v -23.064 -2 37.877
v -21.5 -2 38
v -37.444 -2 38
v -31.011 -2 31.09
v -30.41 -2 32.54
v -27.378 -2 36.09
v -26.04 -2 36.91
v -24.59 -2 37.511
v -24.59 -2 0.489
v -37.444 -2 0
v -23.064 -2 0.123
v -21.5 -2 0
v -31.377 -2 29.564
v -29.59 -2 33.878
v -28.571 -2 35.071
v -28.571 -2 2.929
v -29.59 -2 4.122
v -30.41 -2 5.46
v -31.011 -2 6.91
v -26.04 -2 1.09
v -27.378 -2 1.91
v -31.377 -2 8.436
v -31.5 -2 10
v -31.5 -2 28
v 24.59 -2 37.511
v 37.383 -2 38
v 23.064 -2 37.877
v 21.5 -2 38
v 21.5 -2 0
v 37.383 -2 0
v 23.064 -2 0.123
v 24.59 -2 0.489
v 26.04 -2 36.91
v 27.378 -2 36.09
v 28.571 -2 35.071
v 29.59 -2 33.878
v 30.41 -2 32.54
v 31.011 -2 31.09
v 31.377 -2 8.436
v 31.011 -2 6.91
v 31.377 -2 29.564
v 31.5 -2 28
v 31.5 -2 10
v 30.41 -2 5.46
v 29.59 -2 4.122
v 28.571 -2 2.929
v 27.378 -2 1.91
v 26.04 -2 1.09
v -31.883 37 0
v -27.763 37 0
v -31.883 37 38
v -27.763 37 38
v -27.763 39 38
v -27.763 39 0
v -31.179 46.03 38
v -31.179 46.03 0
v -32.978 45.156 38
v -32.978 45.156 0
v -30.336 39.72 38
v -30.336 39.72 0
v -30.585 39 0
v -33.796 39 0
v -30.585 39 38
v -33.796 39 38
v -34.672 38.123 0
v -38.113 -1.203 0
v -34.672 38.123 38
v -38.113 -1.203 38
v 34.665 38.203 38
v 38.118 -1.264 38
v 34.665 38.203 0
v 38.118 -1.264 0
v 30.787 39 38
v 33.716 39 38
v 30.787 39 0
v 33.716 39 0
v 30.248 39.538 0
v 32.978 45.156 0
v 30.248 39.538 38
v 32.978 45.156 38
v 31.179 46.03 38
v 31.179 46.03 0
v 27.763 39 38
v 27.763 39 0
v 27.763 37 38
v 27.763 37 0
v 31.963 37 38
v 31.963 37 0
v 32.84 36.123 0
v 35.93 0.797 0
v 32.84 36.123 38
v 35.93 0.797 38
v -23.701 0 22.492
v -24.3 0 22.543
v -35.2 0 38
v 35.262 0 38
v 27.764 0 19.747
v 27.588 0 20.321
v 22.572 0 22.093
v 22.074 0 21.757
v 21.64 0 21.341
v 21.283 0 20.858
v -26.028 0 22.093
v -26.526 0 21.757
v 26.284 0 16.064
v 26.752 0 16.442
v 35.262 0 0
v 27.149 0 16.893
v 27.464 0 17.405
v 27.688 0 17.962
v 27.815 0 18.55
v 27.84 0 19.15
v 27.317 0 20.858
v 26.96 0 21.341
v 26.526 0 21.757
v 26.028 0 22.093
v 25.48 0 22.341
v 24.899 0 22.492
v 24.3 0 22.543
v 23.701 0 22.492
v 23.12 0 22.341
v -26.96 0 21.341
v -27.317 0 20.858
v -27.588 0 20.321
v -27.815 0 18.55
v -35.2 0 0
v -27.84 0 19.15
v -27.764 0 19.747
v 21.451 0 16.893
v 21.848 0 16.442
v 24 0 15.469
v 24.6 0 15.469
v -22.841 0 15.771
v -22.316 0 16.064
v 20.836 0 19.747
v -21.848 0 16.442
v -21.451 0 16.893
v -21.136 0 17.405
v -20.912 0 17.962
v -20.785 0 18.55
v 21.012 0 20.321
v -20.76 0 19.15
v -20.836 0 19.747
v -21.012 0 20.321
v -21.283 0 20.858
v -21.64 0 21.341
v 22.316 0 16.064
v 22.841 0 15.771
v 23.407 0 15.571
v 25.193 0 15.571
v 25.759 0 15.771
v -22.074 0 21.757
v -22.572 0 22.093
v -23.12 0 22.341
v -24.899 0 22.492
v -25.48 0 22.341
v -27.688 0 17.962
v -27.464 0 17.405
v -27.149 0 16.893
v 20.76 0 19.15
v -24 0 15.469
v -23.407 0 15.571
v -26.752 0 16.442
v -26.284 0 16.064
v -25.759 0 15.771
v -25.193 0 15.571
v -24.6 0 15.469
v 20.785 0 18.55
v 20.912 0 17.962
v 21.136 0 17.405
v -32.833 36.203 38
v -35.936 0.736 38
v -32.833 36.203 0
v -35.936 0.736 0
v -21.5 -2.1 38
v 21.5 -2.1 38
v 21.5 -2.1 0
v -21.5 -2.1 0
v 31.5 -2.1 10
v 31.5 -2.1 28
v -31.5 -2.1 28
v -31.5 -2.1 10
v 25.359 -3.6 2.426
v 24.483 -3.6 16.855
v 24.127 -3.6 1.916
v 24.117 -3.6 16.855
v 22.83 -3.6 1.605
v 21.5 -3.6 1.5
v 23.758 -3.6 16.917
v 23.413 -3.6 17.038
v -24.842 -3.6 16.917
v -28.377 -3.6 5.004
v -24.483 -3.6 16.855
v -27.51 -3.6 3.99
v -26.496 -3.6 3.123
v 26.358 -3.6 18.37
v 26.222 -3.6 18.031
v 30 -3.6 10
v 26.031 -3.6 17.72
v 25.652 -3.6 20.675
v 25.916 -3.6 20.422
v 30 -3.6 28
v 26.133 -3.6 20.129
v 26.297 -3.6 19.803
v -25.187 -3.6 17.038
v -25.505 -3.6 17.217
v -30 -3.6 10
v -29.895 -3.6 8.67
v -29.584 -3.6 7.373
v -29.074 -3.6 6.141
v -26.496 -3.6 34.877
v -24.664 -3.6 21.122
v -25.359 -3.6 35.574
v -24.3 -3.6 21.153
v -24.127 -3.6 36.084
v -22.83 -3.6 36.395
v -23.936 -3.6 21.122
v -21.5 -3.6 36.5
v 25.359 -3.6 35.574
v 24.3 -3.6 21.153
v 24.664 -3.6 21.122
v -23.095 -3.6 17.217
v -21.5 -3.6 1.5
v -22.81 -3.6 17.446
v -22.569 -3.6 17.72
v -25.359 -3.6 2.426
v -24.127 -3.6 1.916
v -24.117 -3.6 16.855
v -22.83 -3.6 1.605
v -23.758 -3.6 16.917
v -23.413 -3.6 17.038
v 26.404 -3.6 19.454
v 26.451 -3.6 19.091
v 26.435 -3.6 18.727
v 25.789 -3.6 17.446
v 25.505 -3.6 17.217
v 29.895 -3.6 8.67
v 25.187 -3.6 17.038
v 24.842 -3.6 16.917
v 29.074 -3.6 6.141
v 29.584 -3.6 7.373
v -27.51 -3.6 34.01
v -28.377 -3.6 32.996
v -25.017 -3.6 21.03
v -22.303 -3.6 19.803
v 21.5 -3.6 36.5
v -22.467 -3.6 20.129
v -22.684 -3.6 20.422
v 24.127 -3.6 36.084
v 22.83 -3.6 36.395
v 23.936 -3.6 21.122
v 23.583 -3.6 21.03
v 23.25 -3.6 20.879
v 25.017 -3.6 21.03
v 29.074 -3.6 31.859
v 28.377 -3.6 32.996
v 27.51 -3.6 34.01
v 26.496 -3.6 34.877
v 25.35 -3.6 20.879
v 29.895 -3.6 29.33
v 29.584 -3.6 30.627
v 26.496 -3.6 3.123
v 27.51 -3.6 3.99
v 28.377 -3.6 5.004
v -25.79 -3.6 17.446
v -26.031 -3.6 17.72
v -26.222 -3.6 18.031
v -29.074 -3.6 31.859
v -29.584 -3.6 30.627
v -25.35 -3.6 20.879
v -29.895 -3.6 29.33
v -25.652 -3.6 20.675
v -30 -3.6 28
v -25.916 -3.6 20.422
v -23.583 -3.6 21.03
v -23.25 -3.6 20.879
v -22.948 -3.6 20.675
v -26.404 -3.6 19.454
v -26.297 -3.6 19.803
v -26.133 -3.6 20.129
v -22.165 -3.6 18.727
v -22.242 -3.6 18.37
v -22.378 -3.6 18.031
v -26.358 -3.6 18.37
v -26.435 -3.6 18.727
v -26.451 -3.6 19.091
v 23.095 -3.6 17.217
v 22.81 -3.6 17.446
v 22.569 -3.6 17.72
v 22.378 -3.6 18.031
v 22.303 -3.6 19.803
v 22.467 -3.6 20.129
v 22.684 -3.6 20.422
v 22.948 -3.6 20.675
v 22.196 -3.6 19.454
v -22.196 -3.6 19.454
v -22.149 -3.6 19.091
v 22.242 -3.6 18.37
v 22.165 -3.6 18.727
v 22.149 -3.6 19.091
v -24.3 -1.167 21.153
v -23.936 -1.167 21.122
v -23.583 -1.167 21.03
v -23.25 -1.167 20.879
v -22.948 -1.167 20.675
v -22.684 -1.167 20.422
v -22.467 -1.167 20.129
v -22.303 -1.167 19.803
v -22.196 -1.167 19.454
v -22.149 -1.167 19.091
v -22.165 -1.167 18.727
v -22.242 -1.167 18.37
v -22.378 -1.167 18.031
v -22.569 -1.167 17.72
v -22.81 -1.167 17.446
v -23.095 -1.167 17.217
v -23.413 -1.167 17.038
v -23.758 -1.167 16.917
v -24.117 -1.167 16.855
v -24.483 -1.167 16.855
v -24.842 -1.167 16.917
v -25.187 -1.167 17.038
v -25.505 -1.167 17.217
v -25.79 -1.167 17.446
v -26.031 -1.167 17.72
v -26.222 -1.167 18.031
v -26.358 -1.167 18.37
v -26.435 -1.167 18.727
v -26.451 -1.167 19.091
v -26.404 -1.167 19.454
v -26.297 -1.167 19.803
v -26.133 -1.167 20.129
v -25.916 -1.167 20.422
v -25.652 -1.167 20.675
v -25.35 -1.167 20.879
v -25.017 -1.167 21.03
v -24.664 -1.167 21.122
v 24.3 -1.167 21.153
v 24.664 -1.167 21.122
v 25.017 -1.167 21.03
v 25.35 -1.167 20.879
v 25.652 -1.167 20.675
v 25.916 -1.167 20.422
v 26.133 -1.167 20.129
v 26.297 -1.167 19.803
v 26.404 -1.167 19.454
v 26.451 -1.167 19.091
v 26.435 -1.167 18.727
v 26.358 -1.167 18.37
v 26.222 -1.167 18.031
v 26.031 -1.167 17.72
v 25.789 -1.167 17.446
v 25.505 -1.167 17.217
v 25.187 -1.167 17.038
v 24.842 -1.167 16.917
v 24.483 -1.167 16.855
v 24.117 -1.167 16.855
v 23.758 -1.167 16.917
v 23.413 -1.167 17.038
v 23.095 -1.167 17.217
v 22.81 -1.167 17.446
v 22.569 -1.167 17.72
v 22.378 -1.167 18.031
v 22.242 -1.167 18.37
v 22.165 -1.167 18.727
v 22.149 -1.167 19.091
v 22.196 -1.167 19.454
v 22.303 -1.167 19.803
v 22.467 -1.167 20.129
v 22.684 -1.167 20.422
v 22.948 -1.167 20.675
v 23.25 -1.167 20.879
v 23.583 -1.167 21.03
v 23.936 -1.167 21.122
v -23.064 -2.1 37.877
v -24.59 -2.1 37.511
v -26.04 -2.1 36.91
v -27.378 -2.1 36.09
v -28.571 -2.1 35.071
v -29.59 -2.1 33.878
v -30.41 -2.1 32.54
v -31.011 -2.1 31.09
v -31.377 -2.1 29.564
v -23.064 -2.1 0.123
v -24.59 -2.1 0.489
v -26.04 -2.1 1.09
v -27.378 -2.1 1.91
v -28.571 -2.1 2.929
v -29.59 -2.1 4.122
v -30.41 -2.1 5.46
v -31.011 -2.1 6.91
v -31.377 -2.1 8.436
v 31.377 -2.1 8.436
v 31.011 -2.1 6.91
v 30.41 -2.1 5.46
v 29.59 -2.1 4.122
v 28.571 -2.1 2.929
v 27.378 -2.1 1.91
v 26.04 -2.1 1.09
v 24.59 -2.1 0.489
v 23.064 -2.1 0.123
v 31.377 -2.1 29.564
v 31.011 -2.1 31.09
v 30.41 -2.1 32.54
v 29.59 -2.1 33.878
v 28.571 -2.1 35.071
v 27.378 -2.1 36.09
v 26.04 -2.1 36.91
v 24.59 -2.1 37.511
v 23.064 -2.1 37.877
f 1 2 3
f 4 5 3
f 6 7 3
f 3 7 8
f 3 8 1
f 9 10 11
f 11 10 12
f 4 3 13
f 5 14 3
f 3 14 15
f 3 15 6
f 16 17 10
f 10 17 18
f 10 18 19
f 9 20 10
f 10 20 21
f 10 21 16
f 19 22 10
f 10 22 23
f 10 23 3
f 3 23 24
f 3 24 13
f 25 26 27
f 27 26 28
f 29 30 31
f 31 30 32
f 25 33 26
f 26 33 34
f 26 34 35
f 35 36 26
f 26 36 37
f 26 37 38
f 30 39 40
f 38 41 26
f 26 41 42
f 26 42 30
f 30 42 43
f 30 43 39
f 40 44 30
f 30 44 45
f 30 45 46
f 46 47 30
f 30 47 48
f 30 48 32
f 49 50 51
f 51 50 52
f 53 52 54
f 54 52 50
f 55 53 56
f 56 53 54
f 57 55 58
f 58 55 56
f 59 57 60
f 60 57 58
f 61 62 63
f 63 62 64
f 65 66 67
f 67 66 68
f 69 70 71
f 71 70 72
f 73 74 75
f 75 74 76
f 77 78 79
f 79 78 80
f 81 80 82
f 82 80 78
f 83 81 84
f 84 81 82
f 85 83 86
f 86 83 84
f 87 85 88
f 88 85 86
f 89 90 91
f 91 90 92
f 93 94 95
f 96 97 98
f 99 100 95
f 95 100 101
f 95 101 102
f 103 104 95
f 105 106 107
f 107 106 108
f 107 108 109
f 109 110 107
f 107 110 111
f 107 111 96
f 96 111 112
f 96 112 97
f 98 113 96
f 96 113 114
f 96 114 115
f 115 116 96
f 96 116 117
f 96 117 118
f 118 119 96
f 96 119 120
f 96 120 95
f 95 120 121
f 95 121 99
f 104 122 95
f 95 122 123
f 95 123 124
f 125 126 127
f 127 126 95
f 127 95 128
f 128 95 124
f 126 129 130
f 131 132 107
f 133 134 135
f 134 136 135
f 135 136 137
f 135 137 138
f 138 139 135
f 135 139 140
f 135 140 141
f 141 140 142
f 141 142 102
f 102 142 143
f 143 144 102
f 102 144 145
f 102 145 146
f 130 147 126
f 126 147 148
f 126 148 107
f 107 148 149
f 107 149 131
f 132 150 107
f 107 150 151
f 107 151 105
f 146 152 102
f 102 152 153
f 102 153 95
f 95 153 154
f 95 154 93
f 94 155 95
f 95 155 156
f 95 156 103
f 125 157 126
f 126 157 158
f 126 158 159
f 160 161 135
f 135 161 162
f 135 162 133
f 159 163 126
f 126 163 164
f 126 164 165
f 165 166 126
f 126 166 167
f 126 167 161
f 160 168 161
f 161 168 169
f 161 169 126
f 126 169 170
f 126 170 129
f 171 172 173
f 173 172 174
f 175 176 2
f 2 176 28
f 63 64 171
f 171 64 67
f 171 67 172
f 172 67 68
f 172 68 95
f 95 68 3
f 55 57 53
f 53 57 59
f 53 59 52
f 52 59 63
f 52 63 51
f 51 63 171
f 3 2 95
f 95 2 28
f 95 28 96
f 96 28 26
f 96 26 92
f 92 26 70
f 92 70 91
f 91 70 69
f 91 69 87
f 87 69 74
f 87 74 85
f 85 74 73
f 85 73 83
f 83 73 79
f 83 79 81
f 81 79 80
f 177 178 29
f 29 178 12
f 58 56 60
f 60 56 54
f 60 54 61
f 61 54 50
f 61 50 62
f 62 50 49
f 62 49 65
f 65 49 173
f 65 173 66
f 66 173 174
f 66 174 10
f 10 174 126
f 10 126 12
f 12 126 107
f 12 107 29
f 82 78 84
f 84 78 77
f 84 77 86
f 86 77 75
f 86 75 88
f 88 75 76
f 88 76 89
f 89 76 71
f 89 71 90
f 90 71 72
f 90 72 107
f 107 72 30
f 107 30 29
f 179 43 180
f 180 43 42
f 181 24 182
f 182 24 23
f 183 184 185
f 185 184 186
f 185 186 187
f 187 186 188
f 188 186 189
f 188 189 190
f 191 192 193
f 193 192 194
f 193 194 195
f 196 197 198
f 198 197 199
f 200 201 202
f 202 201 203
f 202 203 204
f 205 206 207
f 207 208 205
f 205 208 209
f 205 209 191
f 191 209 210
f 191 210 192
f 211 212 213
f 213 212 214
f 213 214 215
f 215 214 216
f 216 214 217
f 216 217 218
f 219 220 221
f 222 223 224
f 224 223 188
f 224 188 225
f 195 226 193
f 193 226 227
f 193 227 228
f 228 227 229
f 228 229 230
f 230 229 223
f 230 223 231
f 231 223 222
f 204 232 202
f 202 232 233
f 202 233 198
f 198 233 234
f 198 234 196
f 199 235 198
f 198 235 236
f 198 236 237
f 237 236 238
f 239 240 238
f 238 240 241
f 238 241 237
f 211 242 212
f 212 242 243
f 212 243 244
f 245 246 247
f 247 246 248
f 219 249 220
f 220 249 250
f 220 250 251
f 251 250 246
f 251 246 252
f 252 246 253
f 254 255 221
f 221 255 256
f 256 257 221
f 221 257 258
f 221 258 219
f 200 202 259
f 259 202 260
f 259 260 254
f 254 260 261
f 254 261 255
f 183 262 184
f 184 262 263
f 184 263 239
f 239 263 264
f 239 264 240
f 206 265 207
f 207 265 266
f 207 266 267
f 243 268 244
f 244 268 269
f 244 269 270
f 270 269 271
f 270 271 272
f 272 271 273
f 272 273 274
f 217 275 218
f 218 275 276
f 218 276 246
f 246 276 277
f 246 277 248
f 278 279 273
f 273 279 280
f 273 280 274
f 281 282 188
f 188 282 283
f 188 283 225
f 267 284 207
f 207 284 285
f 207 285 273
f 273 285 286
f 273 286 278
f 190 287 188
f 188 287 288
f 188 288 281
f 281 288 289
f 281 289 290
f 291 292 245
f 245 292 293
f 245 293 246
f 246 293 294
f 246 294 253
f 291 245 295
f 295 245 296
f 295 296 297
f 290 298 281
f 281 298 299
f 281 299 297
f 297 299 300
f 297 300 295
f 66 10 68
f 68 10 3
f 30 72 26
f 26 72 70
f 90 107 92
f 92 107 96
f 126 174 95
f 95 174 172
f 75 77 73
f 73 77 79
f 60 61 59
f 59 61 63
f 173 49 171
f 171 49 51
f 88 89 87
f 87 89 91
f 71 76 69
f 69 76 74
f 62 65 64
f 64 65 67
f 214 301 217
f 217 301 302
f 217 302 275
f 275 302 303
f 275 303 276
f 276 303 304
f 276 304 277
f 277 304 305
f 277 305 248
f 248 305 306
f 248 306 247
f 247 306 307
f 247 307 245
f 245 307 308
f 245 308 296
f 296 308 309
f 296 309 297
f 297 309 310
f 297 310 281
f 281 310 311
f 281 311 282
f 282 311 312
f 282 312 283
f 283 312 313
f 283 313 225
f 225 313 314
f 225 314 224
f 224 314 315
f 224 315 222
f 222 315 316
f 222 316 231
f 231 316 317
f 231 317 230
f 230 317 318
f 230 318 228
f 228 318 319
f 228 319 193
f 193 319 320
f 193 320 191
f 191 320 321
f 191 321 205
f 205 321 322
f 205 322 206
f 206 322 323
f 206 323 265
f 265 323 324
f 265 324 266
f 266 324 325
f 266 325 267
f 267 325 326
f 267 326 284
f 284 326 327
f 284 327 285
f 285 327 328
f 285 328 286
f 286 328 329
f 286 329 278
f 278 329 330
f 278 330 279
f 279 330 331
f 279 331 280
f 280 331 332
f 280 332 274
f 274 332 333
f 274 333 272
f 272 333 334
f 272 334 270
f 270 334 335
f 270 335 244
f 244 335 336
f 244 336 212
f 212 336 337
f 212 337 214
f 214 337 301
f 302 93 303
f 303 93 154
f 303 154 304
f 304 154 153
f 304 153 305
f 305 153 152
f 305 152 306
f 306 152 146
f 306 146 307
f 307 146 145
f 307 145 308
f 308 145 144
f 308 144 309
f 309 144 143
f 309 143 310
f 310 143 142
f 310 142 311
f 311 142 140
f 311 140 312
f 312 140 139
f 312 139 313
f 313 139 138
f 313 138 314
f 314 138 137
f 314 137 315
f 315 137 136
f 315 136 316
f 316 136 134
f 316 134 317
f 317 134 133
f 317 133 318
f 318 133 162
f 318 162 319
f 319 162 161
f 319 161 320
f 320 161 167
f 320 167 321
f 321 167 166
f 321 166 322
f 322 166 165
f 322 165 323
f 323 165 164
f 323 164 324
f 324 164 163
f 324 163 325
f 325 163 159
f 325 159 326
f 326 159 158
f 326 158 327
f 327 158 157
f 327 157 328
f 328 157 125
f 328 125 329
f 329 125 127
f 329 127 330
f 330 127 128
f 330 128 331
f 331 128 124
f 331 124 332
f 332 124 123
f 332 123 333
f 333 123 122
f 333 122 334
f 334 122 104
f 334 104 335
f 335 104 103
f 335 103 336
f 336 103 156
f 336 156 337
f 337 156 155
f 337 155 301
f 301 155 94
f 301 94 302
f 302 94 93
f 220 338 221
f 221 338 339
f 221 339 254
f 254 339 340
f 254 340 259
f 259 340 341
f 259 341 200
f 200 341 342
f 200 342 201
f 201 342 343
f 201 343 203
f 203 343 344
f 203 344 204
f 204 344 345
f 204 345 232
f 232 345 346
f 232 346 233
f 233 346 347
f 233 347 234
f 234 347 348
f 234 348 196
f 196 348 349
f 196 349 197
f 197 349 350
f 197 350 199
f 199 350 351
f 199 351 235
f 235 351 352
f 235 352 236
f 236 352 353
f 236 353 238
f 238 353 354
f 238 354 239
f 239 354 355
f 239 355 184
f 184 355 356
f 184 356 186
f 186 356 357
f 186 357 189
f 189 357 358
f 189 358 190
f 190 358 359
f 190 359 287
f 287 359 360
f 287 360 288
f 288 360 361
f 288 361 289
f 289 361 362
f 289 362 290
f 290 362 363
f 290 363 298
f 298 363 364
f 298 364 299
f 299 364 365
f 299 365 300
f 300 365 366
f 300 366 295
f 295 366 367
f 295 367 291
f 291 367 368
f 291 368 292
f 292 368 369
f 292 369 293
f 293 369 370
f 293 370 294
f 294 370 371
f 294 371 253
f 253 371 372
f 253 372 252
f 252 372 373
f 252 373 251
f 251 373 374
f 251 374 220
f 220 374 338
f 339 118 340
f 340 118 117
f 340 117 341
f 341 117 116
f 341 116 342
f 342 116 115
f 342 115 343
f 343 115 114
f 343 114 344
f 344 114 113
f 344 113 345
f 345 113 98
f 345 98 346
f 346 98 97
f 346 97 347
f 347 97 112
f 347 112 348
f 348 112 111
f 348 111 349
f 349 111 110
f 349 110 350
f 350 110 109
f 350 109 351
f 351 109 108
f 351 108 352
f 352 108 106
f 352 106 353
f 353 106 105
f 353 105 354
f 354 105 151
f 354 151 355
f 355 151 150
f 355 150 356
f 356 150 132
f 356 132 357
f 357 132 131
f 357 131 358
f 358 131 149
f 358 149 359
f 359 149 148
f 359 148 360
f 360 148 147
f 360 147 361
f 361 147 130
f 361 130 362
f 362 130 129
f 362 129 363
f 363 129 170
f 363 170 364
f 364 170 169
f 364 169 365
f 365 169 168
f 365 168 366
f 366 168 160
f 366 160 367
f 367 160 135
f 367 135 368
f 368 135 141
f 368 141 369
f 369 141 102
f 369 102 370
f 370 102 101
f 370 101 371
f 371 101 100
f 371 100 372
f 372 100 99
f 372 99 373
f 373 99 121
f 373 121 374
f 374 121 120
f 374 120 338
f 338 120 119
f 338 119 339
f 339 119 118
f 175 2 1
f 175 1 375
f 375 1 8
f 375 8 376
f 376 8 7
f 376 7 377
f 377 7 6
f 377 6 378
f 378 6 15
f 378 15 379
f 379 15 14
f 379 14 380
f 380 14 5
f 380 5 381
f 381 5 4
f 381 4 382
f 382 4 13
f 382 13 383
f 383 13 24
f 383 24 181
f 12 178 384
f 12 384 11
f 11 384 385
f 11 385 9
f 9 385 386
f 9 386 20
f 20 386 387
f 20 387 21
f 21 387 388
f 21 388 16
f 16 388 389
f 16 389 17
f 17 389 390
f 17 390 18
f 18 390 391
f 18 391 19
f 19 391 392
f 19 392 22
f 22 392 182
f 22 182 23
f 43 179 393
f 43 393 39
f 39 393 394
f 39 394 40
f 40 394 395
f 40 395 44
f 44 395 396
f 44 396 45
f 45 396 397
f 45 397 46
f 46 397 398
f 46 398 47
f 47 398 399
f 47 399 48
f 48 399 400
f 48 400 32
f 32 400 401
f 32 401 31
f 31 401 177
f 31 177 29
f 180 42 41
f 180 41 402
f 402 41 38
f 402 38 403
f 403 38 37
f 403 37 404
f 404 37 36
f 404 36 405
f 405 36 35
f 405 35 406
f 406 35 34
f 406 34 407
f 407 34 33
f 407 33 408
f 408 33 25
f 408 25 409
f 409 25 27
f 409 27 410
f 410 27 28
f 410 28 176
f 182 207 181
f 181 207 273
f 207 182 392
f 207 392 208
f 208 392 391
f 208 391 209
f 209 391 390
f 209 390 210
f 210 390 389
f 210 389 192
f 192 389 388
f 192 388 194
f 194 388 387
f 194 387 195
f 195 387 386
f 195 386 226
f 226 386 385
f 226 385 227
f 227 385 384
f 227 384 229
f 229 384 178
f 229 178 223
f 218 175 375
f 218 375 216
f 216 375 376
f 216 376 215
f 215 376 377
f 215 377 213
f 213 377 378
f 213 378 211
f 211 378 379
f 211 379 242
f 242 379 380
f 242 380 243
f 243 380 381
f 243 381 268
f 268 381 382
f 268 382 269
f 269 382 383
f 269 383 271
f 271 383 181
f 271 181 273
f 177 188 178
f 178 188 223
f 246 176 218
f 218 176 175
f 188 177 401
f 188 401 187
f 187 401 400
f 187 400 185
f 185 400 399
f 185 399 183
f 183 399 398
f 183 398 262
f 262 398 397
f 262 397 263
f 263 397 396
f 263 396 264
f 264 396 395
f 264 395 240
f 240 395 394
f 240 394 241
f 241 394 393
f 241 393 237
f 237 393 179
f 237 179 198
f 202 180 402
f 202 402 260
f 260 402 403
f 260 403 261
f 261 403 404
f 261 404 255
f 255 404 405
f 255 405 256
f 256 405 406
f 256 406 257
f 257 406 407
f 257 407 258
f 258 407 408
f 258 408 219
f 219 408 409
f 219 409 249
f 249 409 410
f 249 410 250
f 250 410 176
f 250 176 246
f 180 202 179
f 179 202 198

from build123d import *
from OCP.BRepFilletAPI import BRepFilletAPI_MakeChamfer

# Parameters (mm, degrees)
BOSS_EXTRUDE1_DEPTH                               = 38
SKETCH5_W                                         = 63
SKETCH5_H                                         = 38
BOSS_EXTRUDE2_DEPTH                               = 1.6
CHAMFER6_SIZE                                     = 0.8
CHAMFER6_SIZE2                                    = 0.738449877
CHAMFER7_SIZE                                     = 0.8
CHAMFER7_SIZE2                                    = 0.880050294
CHAMFER7_SIZE2_2                                  = 0.59857957
CSK_FOR_6_FLAT_HEAD_MACHINE_SCREW_100_D           = 4.3053
CSK_FOR_6_FLAT_HEAD_MACHINE_SCREW_100_DEPTH       = 3.6
CSK_FOR_6_FLAT_HEAD_MACHINE_SCREW_100_CSINK_D     = 7.0866
CSK_FOR_6_FLAT_HEAD_MACHINE_SCREW_100_CSINK_ANGLE = 100
FILLET1_R                                         = 10
CHAMFER10_SIZE                                    = 1.5


with BuildPart() as part:
    # Sketch1 → Boss-Extrude1 (new body)
    with BuildSketch(Plane.XY):
        Polygon((-34.595581798, 39), (-29.986555798, 39), (-32.97810591, 45.15618727), (-31.179250624, 46.030326652), (-27.76291945, 39), (-27.76291945, 37), (-32.76291945, 37), (-36, 0), (0, 0), (36, 0), (32.76291945, 37), (27.76291945, 37), (27.76291945, 39), (31.179250624, 46.030326652), (32.97810591, 45.15618727), (29.986555798, 39), (34.595581798, 39), (38.182617002, -2), (0, -2), (-38.182617002, -2), align=None)
    extrude(amount=BOSS_EXTRUDE1_DEPTH)

    # Sketch5 → Boss-Extrude2 (add)
    with BuildSketch(Plane.XZ.offset(2)):
        with Locations((0, 19)):
            Rectangle(SKETCH5_W, SKETCH5_H)
    extrude(amount=BOSS_EXTRUDE2_DEPTH)

    # Chamfer6: one chamfer whose edges measure the first distance from different faces: ONE call of the kernel's chamfer builder (chamfer() names one face for all edges)
    chamfer6_edges_1 = [part.edges().sort_by_distance(p)[0] for p in [
        (-36, 0, 19),
    ]]
    chamfer6_side_1 = [part.faces().sort_by_distance(p)[0] for p in [
        (0, 0, 19),
    ]]
    chamfer6_edges_2 = [part.edges().sort_by_distance(p)[0] for p in [
        (36, 0, 19),
    ]]
    chamfer6_side_2 = [part.faces().sort_by_distance(p)[0] for p in [
        (34.381459725, 18.5, 19),
    ]]
    chamfer6_edges_3 = [part.edges().sort_by_distance(p)[0] for p in [
        (38.182617002, -2, 19),
    ]]
    chamfer6_side_3 = [part.faces().sort_by_distance(p)[0] for p in [
        (34.841308501, -2, 19),
    ]]
    chamfer6_edges_4 = [part.edges().sort_by_distance(p)[0] for p in [
        (-38.182617002, -2, 19),
    ]]
    chamfer6_side_4 = [part.faces().sort_by_distance(p)[0] for p in [
        (-36.3890994, 18.5, 19),
    ]]
    chamfer6 = BRepFilletAPI_MakeChamfer(part.part.solid().wrapped)
    for e in chamfer6_edges_1:
        chamfer6.Add(CHAMFER6_SIZE, CHAMFER6_SIZE2, e.wrapped, chamfer6_side_1[0].wrapped)  # the first distance lies on this face
    for e in chamfer6_edges_2:
        chamfer6.Add(CHAMFER6_SIZE, CHAMFER6_SIZE2, e.wrapped, chamfer6_side_2[0].wrapped)  # the first distance lies on this face
    for e in chamfer6_edges_3:
        chamfer6.Add(CHAMFER6_SIZE, CHAMFER6_SIZE2, e.wrapped, chamfer6_side_3[0].wrapped)  # the first distance lies on this face
    for e in chamfer6_edges_4:
        chamfer6.Add(CHAMFER6_SIZE, CHAMFER6_SIZE2, e.wrapped, chamfer6_side_4[0].wrapped)  # the first distance lies on this face
    add(Compound.cast(chamfer6.Shape()), mode=Mode.REPLACE)

    # Chamfer7: one chamfer whose edges measure the first distance from different faces: ONE call of the kernel's chamfer builder (chamfer() names one face for all edges)
    chamfer7_edges_1 = [part.edges().sort_by_distance(p)[0] for p in [
        (-32.76291945, 37, 19),
    ]]
    chamfer7_side_1 = [part.faces().sort_by_distance(p)[0] for p in [
        (-34.349279651, 18.867819926, 19),
    ]]
    chamfer7_edges_2 = [part.edges().sort_by_distance(p)[0] for p in [
        (32.76291945, 37, 19),
    ]]
    chamfer7_side_2 = [part.faces().sort_by_distance(p)[0] for p in [
        (30.26291945, 37, 19),
    ]]
    chamfer7_edges_3 = [part.edges().sort_by_distance(p)[0] for p in [
        (29.986555798, 39, 19),
    ]]
    chamfer7_side_3 = [part.faces().sort_by_distance(p)[0] for p in [
        (32.291068798, 39, 19),
    ]]
    chamfer7_edges_4 = [part.edges().sort_by_distance(p)[0] for p in [
        (34.595581798, 39, 19),
    ]]
    chamfer7_side_4 = [part.faces().sort_by_distance(p)[0] for p in [
        (36.356919326, 18.867819926, 19),
    ]]
    chamfer7_edges_5 = [part.edges().sort_by_distance(p)[0] for p in [
        (-34.595581798, 39, 19),
    ]]
    chamfer7_side_5 = [part.faces().sort_by_distance(p)[0] for p in [
        (-32.291068798, 39, 19),
    ]]
    chamfer7_edges_6 = [part.edges().sort_by_distance(p)[0] for p in [
        (-29.986555798, 39, 19),
    ]]
    chamfer7_side_6 = [part.faces().sort_by_distance(p)[0] for p in [
        (-31.482330854, 42.078093635, 19),
    ]]
    chamfer7 = BRepFilletAPI_MakeChamfer(part.part.solid().wrapped)
    for e in chamfer7_edges_1:
        chamfer7.Add(CHAMFER7_SIZE, CHAMFER7_SIZE2, e.wrapped, chamfer7_side_1[0].wrapped)  # the first distance lies on this face
    for e in chamfer7_edges_2:
        chamfer7.Add(CHAMFER7_SIZE, CHAMFER7_SIZE2, e.wrapped, chamfer7_side_2[0].wrapped)  # the first distance lies on this face
    for e in chamfer7_edges_3:
        chamfer7.Add(CHAMFER7_SIZE, CHAMFER7_SIZE2_2, e.wrapped, chamfer7_side_3[0].wrapped)  # the first distance lies on this face
    for e in chamfer7_edges_4:
        chamfer7.Add(CHAMFER7_SIZE, CHAMFER7_SIZE2, e.wrapped, chamfer7_side_4[0].wrapped)  # the first distance lies on this face
    for e in chamfer7_edges_5:
        chamfer7.Add(CHAMFER7_SIZE, CHAMFER7_SIZE2, e.wrapped, chamfer7_side_5[0].wrapped)  # the first distance lies on this face
    for e in chamfer7_edges_6:
        chamfer7.Add(CHAMFER7_SIZE, CHAMFER7_SIZE2_2, e.wrapped, chamfer7_side_6[0].wrapped)  # the first distance lies on this face
    add(Compound.cast(chamfer7.Shape()), mode=Mode.REPLACE)

    # CSK for #6 Flat Head Machine Screw (100)1
    with Locations(Plane(origin=(0, 0, 0), x_dir=(1, 0, 0), z_dir=(0, 1, 0))):
        with Locations((24.3, -19), (-24.3, -19)):
            CounterSinkHole(CSK_FOR_6_FLAT_HEAD_MACHINE_SCREW_100_D / 2, CSK_FOR_6_FLAT_HEAD_MACHINE_SCREW_100_CSINK_D / 2, depth=CSK_FOR_6_FLAT_HEAD_MACHINE_SCREW_100_DEPTH, counter_sink_angle=CSK_FOR_6_FLAT_HEAD_MACHINE_SCREW_100_CSINK_ANGLE)

    # Fillet1
    fillet1_edges = [part.edges().sort_by_distance(p)[0] for p in [
        (-31.5, -2.8, 0),
        (31.5, -2.8, 0),
        (31.5, -2.8, 38),
        (-31.5, -2.8, 38),
    ]]
    fillet(fillet1_edges, radius=FILLET1_R)

    # Chamfer10
    chamfer10_edges = [part.edges().sort_by_distance(p)[0] for p in [
        (-31.5, -3.6, 19),
        (0, -3.6, 38),
        (0, -3.6, 0),
        (31.5, -3.6, 19),
        (28.571067812, -3.6, 35.071067812),
        (28.571067812, -3.6, 2.928932188),
        (-28.571067812, -3.6, 2.928932188),
        (-28.571067812, -3.6, 35.071067812),
    ]]
    chamfer(chamfer10_edges, length=CHAMFER10_SIZE)


solid = part.part
